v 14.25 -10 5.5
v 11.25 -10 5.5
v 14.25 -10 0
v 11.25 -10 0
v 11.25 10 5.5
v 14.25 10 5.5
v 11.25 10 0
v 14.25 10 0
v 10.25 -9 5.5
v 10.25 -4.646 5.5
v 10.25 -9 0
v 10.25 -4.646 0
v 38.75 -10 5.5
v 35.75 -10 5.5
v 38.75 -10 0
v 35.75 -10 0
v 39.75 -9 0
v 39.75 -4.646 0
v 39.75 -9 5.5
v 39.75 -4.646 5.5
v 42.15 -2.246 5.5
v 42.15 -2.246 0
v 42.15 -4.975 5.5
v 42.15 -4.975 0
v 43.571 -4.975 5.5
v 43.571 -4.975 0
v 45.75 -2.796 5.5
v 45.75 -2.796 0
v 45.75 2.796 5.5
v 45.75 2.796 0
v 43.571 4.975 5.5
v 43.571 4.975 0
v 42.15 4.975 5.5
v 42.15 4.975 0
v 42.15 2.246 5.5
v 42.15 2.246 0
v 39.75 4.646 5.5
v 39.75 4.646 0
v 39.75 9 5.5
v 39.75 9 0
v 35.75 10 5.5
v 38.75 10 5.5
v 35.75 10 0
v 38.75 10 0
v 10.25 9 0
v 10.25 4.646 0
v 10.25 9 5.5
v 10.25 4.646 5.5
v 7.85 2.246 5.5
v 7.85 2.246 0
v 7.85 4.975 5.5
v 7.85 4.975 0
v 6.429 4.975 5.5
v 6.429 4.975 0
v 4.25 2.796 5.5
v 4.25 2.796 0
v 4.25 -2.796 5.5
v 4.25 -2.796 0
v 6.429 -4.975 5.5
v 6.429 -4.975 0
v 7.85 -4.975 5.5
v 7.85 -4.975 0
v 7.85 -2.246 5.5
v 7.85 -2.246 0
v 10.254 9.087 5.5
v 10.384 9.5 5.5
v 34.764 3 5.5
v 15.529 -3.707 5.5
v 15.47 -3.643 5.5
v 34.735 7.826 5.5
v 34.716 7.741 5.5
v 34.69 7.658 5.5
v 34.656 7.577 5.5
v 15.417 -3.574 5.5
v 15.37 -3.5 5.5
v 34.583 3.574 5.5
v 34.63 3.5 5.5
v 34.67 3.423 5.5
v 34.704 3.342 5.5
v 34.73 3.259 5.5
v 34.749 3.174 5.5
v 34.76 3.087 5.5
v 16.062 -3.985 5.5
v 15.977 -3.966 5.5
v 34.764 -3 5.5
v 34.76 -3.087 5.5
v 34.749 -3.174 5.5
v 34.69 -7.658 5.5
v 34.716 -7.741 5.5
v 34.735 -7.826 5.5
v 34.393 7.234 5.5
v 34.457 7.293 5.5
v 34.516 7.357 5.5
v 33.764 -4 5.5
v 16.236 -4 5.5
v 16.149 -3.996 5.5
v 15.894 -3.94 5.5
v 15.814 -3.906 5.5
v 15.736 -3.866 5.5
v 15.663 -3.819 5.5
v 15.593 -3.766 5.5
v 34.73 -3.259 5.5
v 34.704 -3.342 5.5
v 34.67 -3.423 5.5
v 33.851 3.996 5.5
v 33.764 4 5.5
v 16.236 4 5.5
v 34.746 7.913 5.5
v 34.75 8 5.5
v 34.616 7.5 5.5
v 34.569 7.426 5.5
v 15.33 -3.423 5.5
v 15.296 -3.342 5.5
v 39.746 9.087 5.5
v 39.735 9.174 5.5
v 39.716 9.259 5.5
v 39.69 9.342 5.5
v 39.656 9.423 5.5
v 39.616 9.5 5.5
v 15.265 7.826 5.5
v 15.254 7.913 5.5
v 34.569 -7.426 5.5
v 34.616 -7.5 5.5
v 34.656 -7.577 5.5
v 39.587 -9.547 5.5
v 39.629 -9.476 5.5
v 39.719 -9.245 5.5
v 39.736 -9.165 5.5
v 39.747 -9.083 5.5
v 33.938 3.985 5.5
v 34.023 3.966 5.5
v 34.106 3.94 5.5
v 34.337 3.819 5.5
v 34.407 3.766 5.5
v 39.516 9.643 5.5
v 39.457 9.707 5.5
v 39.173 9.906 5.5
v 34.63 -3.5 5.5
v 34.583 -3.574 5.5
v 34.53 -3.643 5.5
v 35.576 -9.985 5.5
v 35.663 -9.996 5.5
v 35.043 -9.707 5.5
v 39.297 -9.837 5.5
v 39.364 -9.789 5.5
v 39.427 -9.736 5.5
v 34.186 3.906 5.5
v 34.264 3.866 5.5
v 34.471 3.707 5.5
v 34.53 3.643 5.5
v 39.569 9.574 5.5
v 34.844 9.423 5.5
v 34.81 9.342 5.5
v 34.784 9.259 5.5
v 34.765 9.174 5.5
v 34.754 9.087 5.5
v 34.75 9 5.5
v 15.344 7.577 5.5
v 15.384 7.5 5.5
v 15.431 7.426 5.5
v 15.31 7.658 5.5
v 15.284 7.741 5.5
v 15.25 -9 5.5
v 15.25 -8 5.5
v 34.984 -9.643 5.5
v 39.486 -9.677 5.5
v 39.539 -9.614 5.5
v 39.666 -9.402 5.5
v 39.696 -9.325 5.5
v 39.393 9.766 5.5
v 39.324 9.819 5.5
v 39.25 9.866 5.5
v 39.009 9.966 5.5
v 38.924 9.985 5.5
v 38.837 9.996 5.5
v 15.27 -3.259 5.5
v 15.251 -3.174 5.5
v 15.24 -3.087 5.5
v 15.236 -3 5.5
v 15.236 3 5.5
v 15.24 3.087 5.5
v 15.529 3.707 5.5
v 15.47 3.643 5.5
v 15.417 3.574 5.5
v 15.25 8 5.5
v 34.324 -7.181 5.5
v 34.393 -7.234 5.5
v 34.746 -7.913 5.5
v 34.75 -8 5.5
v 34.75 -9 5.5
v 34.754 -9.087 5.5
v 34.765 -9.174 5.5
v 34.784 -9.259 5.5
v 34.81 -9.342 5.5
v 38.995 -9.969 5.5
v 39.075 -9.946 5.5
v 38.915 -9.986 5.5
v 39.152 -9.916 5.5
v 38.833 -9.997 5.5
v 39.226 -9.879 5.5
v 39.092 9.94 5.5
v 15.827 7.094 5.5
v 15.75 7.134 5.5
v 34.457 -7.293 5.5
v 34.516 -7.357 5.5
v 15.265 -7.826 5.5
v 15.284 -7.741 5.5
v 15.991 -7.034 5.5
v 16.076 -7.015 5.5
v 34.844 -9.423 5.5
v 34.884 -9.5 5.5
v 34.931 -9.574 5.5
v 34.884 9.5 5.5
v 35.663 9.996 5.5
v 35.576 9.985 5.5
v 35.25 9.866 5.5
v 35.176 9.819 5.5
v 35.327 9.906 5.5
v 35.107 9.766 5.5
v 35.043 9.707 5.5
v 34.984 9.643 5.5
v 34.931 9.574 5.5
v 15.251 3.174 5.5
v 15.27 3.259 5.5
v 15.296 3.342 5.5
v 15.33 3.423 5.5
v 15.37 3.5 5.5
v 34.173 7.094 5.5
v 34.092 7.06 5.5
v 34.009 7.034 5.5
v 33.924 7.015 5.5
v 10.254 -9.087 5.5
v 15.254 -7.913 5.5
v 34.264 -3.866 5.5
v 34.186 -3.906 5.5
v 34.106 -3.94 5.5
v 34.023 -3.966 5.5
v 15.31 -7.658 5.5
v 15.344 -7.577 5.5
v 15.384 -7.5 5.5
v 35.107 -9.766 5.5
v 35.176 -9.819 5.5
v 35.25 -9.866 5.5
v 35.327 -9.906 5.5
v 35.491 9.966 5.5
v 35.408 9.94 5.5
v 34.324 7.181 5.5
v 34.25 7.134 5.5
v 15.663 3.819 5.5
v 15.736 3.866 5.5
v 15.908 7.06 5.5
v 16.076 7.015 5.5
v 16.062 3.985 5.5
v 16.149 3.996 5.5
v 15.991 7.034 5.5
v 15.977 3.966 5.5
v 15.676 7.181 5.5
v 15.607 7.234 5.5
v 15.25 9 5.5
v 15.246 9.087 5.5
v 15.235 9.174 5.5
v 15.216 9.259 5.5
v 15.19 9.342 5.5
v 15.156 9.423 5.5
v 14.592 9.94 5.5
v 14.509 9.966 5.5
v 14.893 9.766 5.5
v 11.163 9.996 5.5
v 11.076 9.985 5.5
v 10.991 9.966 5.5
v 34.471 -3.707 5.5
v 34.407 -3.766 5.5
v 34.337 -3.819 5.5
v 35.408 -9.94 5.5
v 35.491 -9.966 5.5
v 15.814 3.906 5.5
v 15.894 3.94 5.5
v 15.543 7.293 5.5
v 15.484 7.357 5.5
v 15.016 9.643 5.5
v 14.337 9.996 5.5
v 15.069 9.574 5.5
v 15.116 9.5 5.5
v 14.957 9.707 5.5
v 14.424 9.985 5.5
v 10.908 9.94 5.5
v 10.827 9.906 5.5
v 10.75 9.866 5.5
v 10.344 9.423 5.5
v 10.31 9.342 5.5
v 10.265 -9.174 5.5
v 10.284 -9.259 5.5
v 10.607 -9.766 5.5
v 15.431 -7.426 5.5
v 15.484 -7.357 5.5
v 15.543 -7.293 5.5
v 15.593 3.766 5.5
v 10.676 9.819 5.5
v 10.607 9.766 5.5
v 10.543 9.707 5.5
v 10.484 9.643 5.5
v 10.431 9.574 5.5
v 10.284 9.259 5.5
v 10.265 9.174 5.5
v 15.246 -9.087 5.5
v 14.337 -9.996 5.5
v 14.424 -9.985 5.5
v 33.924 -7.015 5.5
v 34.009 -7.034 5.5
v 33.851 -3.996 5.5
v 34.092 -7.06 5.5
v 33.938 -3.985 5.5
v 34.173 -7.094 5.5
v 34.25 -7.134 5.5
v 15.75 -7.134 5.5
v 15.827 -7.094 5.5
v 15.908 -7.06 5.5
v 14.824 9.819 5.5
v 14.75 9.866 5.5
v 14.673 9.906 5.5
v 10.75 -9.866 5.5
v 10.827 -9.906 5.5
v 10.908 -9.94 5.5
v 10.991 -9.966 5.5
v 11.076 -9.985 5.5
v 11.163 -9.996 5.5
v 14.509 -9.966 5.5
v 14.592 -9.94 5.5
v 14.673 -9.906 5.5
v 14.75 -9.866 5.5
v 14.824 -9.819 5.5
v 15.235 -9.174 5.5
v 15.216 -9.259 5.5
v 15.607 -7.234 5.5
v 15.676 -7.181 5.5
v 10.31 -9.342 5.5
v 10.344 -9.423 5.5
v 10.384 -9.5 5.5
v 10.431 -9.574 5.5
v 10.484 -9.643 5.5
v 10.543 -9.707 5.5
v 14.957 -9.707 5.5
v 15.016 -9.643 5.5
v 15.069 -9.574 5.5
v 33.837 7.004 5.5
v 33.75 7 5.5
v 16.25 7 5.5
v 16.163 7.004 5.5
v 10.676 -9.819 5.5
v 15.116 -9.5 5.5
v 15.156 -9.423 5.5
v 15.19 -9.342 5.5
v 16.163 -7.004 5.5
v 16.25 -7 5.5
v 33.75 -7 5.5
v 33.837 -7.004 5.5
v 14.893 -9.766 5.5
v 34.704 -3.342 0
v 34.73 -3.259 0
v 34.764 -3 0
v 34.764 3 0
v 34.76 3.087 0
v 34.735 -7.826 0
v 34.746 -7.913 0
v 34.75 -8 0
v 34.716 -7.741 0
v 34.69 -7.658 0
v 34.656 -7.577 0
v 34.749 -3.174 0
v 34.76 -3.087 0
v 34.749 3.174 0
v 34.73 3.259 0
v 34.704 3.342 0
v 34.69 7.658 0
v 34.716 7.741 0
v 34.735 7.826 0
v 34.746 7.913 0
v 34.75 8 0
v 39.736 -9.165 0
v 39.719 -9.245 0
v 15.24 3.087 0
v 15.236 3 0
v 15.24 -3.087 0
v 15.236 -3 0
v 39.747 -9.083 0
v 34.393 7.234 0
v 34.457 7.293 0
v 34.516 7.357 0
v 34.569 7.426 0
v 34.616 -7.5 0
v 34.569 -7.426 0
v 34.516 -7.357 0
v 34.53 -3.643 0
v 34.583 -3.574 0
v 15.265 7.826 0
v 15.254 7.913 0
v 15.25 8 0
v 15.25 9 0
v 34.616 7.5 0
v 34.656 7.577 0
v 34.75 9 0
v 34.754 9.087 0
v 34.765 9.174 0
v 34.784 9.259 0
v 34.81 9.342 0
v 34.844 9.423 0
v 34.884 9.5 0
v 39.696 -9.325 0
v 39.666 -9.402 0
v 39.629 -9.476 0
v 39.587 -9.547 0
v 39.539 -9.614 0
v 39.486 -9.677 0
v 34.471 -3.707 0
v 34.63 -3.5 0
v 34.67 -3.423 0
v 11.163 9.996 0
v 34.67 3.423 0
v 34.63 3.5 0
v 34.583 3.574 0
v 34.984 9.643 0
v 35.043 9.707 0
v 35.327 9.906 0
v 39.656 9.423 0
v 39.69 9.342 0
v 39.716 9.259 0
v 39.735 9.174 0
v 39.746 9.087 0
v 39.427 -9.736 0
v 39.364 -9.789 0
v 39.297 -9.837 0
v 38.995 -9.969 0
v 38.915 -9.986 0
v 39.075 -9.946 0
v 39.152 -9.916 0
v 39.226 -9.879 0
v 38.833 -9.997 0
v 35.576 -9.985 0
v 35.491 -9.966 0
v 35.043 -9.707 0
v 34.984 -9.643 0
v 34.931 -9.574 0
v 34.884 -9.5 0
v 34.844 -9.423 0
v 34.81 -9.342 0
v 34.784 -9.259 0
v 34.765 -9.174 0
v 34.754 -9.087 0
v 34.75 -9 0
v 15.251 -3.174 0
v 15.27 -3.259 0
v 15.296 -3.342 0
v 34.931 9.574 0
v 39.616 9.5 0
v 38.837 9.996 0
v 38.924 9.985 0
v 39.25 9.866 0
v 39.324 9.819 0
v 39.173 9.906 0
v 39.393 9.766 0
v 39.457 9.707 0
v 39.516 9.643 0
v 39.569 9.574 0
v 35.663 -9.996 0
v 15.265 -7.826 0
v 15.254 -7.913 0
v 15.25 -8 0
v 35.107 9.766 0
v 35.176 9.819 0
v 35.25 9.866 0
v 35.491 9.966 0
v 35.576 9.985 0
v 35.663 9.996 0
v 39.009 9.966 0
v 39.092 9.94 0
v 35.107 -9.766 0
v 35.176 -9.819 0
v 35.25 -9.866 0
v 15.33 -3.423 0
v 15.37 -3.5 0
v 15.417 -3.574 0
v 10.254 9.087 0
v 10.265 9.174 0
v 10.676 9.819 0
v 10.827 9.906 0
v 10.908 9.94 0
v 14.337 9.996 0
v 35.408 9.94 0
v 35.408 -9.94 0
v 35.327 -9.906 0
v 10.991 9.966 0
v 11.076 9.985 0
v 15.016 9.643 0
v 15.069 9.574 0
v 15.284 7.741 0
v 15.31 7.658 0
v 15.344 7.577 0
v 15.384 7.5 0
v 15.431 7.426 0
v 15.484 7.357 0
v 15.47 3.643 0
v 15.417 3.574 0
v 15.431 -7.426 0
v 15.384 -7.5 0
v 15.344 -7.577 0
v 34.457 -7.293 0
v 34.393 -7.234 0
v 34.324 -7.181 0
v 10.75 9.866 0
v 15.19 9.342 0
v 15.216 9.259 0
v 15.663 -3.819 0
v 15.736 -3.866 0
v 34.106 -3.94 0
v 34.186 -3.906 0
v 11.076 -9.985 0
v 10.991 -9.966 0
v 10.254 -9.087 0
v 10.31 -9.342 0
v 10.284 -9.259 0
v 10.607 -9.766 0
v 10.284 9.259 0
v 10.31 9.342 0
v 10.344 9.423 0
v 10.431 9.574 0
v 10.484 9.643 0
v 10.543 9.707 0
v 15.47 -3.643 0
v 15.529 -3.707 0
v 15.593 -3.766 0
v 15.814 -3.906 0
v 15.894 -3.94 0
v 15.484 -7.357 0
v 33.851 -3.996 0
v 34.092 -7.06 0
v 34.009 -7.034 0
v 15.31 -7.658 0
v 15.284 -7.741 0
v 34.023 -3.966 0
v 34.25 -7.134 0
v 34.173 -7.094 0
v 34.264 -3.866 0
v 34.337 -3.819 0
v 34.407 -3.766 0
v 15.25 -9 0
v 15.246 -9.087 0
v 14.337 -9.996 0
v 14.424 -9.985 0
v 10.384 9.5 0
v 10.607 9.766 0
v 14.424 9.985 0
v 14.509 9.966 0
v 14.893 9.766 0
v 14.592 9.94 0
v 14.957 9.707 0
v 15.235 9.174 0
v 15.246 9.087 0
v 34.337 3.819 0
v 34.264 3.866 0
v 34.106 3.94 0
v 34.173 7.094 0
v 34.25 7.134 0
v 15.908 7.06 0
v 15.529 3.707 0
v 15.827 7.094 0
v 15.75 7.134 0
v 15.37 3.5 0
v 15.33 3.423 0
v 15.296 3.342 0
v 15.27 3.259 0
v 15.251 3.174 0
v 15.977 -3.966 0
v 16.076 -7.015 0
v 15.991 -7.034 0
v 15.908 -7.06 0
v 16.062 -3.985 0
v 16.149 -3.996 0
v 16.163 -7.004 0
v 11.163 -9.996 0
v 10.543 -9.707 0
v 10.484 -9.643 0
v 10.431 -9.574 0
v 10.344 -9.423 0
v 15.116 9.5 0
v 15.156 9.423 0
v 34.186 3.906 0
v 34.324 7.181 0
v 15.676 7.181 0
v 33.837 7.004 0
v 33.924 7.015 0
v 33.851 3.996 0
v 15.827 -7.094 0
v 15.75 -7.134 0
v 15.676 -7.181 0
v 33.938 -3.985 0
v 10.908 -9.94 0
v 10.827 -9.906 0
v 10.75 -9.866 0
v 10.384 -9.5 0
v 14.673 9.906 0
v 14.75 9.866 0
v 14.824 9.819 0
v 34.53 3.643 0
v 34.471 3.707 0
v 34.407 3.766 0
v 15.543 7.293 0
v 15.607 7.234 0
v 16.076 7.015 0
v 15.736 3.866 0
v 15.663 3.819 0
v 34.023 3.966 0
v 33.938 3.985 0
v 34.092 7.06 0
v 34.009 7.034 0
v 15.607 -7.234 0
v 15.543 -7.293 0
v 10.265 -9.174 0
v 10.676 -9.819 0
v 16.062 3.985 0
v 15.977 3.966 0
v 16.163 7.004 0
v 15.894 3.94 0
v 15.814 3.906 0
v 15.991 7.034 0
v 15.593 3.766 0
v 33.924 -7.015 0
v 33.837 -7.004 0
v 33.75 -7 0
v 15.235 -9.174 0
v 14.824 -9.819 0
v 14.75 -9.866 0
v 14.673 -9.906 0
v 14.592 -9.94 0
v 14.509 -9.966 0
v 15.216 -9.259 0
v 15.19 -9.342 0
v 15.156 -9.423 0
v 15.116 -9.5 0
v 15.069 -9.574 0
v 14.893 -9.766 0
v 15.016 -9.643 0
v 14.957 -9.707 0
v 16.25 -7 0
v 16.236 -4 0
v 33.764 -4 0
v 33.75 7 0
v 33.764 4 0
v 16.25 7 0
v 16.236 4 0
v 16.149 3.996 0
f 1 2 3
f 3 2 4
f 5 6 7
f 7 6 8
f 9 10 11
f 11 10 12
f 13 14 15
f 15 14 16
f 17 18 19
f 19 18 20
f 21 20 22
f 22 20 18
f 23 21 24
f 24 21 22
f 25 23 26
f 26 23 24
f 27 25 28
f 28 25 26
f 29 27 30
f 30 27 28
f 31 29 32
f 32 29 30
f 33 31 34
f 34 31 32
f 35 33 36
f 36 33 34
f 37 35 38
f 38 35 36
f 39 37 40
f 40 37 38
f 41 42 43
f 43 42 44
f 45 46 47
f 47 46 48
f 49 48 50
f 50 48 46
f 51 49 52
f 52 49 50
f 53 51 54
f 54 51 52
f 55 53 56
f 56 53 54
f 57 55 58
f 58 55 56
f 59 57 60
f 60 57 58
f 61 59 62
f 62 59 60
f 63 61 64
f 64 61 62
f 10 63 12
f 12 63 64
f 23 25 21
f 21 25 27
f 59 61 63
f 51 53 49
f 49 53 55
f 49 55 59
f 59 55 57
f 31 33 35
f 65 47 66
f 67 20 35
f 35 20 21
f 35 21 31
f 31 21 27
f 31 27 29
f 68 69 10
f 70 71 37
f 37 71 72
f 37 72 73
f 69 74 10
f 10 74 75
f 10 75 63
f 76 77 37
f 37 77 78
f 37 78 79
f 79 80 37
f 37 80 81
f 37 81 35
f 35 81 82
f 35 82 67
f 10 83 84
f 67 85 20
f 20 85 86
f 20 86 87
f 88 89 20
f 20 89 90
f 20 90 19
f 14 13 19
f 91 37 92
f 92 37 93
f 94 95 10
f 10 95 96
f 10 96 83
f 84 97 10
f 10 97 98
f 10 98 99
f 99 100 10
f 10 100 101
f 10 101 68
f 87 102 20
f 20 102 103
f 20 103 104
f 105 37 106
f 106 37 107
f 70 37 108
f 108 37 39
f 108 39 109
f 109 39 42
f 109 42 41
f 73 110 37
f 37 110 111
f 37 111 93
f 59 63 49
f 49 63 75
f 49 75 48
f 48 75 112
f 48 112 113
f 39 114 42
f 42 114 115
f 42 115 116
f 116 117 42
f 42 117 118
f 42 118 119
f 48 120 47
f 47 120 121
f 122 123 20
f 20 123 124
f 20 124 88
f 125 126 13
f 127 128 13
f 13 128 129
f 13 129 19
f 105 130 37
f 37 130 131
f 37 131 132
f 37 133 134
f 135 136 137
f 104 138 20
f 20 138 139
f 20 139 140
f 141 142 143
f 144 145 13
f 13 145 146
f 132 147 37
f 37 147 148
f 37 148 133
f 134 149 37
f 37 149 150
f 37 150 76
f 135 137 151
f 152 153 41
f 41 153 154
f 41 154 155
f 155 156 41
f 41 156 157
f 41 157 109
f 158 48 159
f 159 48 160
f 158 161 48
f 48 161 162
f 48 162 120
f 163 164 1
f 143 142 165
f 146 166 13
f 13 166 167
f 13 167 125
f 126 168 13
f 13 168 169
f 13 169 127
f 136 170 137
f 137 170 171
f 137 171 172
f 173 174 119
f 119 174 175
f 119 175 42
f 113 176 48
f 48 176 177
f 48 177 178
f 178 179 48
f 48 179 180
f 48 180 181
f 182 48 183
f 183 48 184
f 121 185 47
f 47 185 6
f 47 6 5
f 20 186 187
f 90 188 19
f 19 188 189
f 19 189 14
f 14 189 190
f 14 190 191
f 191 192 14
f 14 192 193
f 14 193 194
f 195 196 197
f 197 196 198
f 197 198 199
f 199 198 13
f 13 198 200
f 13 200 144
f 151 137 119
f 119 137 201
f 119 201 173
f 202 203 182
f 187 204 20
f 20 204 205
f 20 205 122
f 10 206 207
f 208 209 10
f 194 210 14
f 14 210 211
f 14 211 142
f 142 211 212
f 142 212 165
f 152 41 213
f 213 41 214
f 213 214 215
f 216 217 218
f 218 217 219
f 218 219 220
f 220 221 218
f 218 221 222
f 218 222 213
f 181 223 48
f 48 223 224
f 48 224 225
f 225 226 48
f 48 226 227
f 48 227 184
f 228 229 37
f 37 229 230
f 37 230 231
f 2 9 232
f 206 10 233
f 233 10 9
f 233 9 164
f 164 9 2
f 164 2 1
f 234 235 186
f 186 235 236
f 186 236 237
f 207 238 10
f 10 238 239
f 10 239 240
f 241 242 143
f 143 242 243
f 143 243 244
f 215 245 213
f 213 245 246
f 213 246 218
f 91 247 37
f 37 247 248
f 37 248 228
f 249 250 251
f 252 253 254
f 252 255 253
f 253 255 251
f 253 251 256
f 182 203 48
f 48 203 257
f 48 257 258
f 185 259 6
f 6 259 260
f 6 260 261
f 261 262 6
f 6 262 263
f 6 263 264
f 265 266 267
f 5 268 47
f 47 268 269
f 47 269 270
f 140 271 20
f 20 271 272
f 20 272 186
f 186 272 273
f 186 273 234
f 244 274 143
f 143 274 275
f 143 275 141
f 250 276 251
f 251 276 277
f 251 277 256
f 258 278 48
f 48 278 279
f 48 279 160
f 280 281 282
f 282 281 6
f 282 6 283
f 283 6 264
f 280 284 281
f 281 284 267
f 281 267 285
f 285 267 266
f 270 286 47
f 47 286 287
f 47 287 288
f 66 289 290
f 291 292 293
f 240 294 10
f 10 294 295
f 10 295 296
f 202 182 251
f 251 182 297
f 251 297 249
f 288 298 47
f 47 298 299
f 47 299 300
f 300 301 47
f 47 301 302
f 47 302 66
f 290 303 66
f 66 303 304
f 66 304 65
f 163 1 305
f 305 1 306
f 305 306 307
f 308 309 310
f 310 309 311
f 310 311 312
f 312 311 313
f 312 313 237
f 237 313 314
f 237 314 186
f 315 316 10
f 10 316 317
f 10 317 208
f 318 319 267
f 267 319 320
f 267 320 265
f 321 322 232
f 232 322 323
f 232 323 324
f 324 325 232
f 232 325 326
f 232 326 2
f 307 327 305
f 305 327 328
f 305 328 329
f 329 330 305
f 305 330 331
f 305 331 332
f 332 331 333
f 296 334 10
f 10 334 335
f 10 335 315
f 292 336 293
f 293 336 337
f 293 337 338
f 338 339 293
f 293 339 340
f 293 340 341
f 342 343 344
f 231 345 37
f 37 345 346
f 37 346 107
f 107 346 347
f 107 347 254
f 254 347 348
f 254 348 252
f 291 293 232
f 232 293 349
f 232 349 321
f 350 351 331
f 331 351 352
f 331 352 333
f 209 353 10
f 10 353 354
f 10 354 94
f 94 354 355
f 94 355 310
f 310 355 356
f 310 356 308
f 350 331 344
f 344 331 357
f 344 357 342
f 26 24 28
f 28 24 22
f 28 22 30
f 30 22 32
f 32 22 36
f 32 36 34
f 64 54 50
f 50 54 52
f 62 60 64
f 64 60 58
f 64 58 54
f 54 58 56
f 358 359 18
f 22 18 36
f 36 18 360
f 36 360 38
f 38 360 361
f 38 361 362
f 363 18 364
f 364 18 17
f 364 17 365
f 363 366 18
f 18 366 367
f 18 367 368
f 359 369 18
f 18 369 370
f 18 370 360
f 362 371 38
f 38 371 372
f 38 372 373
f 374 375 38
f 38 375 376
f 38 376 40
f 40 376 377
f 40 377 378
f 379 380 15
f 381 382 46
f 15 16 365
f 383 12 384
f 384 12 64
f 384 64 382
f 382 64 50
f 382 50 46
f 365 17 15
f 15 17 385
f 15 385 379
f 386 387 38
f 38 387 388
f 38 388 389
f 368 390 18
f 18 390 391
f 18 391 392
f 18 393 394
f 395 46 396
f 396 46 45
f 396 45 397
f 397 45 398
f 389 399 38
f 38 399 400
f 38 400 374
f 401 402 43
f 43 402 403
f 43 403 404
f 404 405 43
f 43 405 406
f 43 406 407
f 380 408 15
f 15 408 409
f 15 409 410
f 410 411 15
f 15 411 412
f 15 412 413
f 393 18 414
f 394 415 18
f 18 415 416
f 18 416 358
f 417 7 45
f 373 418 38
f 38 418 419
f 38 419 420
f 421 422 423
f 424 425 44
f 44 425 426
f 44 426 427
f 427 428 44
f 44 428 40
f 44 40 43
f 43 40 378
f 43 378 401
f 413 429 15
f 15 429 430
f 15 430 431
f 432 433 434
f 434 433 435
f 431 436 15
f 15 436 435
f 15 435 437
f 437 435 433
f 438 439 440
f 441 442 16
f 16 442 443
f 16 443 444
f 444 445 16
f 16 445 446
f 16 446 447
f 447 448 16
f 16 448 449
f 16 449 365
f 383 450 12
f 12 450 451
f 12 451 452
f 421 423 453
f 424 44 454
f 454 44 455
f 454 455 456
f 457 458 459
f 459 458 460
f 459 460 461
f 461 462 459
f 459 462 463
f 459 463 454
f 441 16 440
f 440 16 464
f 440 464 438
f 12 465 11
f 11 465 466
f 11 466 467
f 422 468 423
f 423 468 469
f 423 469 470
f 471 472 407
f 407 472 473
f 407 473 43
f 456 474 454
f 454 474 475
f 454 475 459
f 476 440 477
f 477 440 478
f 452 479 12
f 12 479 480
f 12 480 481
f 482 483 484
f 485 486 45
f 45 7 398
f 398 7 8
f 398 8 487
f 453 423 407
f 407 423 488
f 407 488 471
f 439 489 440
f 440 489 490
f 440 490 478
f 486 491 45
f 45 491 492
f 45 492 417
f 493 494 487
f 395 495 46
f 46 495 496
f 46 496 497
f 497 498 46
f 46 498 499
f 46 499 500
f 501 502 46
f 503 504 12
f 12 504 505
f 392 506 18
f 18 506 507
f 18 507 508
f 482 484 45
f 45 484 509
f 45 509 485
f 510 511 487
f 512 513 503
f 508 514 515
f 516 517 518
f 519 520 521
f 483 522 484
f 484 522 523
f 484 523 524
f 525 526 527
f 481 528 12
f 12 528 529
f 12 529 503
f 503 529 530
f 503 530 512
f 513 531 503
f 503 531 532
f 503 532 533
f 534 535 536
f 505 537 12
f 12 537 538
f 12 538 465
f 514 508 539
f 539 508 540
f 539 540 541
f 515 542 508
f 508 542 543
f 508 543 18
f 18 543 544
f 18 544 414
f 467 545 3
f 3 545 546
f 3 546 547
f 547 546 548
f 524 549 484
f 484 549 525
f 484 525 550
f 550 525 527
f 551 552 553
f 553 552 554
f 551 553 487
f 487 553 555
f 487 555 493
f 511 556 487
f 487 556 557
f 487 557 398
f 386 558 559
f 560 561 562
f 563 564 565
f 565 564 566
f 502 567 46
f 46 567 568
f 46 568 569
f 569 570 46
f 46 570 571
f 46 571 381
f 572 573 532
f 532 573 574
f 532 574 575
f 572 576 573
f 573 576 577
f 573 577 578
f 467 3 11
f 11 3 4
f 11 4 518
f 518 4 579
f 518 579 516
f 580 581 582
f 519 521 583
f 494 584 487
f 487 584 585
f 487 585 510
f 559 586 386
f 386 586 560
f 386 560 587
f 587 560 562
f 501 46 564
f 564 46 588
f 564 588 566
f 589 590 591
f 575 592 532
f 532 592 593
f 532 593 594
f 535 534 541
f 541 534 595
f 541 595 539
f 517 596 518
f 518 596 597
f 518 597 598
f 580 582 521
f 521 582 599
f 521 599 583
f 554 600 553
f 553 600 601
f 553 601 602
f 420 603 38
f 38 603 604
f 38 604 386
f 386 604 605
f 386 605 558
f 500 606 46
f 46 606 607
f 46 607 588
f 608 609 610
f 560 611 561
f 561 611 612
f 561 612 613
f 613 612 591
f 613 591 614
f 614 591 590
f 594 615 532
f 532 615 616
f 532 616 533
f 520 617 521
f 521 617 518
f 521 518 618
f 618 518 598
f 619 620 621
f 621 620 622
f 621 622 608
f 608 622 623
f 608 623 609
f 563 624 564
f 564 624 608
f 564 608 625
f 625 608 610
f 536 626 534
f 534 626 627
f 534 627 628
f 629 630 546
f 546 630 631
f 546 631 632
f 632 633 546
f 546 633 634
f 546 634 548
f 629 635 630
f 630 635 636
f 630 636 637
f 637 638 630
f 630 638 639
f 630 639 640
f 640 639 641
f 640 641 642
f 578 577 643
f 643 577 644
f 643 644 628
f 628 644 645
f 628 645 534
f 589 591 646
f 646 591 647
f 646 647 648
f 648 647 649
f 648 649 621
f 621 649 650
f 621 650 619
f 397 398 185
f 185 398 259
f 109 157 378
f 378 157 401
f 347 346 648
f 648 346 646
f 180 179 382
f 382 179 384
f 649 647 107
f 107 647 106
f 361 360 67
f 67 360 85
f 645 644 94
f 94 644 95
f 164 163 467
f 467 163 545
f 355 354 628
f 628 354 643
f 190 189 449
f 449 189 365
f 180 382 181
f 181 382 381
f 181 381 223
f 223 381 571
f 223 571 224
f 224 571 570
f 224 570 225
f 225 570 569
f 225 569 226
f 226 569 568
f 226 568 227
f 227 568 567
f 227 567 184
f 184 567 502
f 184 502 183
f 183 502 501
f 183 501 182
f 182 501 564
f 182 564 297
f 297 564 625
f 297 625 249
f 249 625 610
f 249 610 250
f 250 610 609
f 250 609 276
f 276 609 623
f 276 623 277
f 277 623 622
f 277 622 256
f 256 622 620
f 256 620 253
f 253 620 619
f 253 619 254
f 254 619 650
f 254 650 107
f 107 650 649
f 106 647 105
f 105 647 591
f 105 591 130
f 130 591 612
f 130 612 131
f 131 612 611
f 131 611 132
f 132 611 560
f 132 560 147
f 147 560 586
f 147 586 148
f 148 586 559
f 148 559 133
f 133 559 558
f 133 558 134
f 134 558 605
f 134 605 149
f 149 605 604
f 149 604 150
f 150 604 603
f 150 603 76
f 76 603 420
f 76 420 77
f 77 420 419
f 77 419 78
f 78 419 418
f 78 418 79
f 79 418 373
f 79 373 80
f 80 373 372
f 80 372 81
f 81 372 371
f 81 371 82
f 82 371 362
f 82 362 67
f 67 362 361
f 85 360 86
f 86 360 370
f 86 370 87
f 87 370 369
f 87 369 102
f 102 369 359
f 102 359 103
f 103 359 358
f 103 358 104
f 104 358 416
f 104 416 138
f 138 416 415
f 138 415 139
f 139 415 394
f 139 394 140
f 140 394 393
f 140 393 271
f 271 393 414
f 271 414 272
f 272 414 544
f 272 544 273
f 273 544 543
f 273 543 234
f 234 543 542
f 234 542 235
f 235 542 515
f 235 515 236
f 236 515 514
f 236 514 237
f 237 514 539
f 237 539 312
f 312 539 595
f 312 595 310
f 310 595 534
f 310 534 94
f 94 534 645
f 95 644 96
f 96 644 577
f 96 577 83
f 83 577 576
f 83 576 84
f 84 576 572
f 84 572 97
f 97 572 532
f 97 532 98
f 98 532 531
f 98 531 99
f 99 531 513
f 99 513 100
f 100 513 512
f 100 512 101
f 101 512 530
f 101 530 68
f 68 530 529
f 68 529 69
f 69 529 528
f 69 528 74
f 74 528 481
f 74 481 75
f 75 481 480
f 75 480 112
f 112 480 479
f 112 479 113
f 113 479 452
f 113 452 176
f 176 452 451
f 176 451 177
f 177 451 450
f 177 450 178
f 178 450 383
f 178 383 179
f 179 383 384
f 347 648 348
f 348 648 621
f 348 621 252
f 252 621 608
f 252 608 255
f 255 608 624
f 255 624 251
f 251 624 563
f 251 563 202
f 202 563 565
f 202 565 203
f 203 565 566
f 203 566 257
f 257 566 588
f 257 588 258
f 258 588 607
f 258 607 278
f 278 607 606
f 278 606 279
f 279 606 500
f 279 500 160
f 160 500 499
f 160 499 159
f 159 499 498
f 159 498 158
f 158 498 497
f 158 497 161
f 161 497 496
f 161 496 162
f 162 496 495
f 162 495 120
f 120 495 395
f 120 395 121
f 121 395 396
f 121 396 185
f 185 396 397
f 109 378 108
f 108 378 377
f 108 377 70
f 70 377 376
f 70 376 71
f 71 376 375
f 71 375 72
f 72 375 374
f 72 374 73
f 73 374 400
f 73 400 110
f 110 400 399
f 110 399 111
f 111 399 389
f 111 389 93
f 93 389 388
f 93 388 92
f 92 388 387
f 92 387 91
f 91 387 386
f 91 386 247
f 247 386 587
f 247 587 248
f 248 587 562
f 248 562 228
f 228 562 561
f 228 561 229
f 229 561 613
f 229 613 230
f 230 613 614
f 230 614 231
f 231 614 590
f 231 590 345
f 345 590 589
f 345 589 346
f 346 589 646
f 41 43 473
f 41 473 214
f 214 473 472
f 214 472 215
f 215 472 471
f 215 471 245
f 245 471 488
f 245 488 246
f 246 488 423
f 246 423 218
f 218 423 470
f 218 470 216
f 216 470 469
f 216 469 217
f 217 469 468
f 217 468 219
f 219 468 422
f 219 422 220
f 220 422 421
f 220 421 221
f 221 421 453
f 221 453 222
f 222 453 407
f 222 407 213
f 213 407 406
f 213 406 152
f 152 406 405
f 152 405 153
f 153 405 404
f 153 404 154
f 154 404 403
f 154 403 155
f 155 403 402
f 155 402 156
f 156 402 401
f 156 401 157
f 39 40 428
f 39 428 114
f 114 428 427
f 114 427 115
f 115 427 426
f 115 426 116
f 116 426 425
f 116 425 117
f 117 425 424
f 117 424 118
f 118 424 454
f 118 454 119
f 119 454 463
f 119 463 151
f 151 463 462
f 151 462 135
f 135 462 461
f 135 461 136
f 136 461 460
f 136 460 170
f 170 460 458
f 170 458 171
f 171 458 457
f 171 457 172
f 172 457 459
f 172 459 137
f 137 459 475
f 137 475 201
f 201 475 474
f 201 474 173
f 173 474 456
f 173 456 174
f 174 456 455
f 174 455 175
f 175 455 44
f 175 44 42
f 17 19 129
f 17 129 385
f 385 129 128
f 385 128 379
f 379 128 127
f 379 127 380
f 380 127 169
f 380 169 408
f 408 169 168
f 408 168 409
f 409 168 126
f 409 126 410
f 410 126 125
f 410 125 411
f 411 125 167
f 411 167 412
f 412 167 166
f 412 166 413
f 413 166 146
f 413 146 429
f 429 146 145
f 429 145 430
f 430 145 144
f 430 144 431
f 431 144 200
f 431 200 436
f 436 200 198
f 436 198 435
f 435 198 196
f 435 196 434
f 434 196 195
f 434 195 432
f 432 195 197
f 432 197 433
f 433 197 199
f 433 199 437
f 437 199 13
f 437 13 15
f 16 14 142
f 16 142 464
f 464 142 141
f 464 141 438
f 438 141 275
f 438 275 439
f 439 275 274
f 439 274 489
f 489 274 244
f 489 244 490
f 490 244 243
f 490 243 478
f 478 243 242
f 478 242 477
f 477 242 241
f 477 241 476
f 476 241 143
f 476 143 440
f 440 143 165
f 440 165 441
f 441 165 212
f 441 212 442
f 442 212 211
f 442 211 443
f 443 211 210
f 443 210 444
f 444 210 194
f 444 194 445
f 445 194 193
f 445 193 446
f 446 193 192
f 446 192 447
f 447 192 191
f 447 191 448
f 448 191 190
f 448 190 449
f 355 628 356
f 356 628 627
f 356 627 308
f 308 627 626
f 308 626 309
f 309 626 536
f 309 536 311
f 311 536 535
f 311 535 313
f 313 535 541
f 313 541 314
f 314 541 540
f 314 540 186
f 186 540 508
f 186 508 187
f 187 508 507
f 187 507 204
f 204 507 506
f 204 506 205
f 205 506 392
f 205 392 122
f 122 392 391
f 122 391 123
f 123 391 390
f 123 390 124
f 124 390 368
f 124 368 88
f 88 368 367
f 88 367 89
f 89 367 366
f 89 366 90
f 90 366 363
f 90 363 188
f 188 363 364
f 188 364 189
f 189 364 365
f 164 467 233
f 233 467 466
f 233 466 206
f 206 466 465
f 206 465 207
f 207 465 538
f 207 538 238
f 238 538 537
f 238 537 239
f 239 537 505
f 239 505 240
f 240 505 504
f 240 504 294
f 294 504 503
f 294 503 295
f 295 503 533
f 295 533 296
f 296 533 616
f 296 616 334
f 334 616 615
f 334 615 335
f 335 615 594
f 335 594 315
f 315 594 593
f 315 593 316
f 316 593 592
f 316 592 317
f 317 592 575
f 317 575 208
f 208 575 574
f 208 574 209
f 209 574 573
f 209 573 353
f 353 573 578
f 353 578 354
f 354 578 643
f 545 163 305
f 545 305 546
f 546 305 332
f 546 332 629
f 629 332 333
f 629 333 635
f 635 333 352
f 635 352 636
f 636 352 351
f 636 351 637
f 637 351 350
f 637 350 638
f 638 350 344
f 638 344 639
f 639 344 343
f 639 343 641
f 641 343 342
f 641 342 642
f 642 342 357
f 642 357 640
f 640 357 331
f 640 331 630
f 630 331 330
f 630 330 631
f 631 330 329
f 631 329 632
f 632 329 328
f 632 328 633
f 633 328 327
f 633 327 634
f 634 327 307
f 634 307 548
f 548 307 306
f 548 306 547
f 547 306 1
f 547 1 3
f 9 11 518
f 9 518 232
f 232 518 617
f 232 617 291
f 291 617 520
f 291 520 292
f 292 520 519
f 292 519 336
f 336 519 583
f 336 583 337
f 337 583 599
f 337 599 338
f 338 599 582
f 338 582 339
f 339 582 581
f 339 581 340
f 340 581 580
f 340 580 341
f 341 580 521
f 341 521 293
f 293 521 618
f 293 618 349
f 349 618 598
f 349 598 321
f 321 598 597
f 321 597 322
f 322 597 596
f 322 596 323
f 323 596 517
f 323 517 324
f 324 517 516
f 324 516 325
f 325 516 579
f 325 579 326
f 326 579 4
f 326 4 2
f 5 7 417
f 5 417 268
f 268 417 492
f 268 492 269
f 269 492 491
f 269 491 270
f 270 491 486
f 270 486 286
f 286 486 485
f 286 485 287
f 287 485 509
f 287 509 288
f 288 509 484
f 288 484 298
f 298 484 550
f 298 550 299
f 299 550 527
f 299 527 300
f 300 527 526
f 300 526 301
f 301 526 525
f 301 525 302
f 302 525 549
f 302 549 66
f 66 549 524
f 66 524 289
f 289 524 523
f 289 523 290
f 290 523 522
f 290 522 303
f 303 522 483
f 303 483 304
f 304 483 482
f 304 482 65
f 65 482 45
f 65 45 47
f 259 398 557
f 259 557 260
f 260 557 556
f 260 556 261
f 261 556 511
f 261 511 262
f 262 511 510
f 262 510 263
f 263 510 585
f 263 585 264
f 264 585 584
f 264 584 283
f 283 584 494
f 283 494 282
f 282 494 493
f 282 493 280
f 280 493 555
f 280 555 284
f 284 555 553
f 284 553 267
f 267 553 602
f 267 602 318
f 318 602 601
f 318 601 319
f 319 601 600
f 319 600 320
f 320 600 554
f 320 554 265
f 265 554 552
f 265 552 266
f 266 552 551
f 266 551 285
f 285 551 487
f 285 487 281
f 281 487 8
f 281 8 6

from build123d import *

# Parameters (mm, degrees)
BOSS_EXTRUDE1_DEPTH = 5.5
SKETCH3_W           = 19.5
SKETCH3_H           = 3
SKETCH3_W_2         = 19.527752912
SKETCH3_H_2         = 8
CUT_EXTRUDE1_DEPTH  = 48.152014803
FILLET1_R           = 1


with BuildPart() as part:
    # Sketch1 → Boss-Extrude1 (new body)
    with BuildSketch(Plane.XY):
        Polygon((39.75, 10), (10.25, 10), (10.25, 8.5), (10.25, 4.646446609), (7.85, 2.246446609), (7.85, 4.975), (6.428553391, 4.975), (4.25, 2.796446609), (4.25, -2.796446609), (6.428553391, -4.975), (7.85, -4.975), (7.85, -2.246446609), (10.25, -4.646446609), (10.25, -8.5), (10.25, -10), (39.75, -10), (39.75, -8.5), (39.75, -4.646446609), (42.15, -2.246446609), (42.15, -4.975), (43.571446609, -4.975), (45.75, -2.796446609), (45.75, 2.796446609), (43.571446609, 4.975), (42.15, 4.975), (42.15, 2.246446609), (39.75, 4.646446609), (39.75, 8.5), align=None)
    extrude(amount=BOSS_EXTRUDE1_DEPTH)

    # Sketch3 → Cut-Extrude1 (cut, through all)
    with BuildSketch(Plane.XY.offset(5.5)):
        with Locations((25, 8.5)):
            Rectangle(SKETCH3_W, SKETCH3_H)
        with Locations((25, -8.5)):
            Rectangle(SKETCH3_W, SKETCH3_H)
        with Locations((25, 0)):
            Rectangle(SKETCH3_W_2, SKETCH3_H_2)
    extrude(amount=-CUT_EXTRUDE1_DEPTH, mode=Mode.SUBTRACT)

    # Fillet1
    fillet1_edges = [part.edges().sort_by_distance(p)[0] for p in [
        (15.25, -10, 2.75),
        (15.25, -7, 2.75),
        (34.75, -7, 2.75),
        (34.75, -10, 2.75),
        (15.236123544, -4, 2.75),
        (15.236123544, 4, 2.75),
        (34.763876456, 4, 2.75),
        (34.763876456, -4, 2.75),
        (10.25, 10, 2.75),
        (39.75, 10, 2.75),
        (39.75, -10, 2.75),
        (10.25, -10, 2.75),
        (15.25, 7, 2.75),
        (15.25, 10, 2.75),
        (34.75, 10, 2.75),
        (34.75, 7, 2.75),
    ]]
    fillet(fillet1_edges, radius=FILLET1_R)


solid = part.part
